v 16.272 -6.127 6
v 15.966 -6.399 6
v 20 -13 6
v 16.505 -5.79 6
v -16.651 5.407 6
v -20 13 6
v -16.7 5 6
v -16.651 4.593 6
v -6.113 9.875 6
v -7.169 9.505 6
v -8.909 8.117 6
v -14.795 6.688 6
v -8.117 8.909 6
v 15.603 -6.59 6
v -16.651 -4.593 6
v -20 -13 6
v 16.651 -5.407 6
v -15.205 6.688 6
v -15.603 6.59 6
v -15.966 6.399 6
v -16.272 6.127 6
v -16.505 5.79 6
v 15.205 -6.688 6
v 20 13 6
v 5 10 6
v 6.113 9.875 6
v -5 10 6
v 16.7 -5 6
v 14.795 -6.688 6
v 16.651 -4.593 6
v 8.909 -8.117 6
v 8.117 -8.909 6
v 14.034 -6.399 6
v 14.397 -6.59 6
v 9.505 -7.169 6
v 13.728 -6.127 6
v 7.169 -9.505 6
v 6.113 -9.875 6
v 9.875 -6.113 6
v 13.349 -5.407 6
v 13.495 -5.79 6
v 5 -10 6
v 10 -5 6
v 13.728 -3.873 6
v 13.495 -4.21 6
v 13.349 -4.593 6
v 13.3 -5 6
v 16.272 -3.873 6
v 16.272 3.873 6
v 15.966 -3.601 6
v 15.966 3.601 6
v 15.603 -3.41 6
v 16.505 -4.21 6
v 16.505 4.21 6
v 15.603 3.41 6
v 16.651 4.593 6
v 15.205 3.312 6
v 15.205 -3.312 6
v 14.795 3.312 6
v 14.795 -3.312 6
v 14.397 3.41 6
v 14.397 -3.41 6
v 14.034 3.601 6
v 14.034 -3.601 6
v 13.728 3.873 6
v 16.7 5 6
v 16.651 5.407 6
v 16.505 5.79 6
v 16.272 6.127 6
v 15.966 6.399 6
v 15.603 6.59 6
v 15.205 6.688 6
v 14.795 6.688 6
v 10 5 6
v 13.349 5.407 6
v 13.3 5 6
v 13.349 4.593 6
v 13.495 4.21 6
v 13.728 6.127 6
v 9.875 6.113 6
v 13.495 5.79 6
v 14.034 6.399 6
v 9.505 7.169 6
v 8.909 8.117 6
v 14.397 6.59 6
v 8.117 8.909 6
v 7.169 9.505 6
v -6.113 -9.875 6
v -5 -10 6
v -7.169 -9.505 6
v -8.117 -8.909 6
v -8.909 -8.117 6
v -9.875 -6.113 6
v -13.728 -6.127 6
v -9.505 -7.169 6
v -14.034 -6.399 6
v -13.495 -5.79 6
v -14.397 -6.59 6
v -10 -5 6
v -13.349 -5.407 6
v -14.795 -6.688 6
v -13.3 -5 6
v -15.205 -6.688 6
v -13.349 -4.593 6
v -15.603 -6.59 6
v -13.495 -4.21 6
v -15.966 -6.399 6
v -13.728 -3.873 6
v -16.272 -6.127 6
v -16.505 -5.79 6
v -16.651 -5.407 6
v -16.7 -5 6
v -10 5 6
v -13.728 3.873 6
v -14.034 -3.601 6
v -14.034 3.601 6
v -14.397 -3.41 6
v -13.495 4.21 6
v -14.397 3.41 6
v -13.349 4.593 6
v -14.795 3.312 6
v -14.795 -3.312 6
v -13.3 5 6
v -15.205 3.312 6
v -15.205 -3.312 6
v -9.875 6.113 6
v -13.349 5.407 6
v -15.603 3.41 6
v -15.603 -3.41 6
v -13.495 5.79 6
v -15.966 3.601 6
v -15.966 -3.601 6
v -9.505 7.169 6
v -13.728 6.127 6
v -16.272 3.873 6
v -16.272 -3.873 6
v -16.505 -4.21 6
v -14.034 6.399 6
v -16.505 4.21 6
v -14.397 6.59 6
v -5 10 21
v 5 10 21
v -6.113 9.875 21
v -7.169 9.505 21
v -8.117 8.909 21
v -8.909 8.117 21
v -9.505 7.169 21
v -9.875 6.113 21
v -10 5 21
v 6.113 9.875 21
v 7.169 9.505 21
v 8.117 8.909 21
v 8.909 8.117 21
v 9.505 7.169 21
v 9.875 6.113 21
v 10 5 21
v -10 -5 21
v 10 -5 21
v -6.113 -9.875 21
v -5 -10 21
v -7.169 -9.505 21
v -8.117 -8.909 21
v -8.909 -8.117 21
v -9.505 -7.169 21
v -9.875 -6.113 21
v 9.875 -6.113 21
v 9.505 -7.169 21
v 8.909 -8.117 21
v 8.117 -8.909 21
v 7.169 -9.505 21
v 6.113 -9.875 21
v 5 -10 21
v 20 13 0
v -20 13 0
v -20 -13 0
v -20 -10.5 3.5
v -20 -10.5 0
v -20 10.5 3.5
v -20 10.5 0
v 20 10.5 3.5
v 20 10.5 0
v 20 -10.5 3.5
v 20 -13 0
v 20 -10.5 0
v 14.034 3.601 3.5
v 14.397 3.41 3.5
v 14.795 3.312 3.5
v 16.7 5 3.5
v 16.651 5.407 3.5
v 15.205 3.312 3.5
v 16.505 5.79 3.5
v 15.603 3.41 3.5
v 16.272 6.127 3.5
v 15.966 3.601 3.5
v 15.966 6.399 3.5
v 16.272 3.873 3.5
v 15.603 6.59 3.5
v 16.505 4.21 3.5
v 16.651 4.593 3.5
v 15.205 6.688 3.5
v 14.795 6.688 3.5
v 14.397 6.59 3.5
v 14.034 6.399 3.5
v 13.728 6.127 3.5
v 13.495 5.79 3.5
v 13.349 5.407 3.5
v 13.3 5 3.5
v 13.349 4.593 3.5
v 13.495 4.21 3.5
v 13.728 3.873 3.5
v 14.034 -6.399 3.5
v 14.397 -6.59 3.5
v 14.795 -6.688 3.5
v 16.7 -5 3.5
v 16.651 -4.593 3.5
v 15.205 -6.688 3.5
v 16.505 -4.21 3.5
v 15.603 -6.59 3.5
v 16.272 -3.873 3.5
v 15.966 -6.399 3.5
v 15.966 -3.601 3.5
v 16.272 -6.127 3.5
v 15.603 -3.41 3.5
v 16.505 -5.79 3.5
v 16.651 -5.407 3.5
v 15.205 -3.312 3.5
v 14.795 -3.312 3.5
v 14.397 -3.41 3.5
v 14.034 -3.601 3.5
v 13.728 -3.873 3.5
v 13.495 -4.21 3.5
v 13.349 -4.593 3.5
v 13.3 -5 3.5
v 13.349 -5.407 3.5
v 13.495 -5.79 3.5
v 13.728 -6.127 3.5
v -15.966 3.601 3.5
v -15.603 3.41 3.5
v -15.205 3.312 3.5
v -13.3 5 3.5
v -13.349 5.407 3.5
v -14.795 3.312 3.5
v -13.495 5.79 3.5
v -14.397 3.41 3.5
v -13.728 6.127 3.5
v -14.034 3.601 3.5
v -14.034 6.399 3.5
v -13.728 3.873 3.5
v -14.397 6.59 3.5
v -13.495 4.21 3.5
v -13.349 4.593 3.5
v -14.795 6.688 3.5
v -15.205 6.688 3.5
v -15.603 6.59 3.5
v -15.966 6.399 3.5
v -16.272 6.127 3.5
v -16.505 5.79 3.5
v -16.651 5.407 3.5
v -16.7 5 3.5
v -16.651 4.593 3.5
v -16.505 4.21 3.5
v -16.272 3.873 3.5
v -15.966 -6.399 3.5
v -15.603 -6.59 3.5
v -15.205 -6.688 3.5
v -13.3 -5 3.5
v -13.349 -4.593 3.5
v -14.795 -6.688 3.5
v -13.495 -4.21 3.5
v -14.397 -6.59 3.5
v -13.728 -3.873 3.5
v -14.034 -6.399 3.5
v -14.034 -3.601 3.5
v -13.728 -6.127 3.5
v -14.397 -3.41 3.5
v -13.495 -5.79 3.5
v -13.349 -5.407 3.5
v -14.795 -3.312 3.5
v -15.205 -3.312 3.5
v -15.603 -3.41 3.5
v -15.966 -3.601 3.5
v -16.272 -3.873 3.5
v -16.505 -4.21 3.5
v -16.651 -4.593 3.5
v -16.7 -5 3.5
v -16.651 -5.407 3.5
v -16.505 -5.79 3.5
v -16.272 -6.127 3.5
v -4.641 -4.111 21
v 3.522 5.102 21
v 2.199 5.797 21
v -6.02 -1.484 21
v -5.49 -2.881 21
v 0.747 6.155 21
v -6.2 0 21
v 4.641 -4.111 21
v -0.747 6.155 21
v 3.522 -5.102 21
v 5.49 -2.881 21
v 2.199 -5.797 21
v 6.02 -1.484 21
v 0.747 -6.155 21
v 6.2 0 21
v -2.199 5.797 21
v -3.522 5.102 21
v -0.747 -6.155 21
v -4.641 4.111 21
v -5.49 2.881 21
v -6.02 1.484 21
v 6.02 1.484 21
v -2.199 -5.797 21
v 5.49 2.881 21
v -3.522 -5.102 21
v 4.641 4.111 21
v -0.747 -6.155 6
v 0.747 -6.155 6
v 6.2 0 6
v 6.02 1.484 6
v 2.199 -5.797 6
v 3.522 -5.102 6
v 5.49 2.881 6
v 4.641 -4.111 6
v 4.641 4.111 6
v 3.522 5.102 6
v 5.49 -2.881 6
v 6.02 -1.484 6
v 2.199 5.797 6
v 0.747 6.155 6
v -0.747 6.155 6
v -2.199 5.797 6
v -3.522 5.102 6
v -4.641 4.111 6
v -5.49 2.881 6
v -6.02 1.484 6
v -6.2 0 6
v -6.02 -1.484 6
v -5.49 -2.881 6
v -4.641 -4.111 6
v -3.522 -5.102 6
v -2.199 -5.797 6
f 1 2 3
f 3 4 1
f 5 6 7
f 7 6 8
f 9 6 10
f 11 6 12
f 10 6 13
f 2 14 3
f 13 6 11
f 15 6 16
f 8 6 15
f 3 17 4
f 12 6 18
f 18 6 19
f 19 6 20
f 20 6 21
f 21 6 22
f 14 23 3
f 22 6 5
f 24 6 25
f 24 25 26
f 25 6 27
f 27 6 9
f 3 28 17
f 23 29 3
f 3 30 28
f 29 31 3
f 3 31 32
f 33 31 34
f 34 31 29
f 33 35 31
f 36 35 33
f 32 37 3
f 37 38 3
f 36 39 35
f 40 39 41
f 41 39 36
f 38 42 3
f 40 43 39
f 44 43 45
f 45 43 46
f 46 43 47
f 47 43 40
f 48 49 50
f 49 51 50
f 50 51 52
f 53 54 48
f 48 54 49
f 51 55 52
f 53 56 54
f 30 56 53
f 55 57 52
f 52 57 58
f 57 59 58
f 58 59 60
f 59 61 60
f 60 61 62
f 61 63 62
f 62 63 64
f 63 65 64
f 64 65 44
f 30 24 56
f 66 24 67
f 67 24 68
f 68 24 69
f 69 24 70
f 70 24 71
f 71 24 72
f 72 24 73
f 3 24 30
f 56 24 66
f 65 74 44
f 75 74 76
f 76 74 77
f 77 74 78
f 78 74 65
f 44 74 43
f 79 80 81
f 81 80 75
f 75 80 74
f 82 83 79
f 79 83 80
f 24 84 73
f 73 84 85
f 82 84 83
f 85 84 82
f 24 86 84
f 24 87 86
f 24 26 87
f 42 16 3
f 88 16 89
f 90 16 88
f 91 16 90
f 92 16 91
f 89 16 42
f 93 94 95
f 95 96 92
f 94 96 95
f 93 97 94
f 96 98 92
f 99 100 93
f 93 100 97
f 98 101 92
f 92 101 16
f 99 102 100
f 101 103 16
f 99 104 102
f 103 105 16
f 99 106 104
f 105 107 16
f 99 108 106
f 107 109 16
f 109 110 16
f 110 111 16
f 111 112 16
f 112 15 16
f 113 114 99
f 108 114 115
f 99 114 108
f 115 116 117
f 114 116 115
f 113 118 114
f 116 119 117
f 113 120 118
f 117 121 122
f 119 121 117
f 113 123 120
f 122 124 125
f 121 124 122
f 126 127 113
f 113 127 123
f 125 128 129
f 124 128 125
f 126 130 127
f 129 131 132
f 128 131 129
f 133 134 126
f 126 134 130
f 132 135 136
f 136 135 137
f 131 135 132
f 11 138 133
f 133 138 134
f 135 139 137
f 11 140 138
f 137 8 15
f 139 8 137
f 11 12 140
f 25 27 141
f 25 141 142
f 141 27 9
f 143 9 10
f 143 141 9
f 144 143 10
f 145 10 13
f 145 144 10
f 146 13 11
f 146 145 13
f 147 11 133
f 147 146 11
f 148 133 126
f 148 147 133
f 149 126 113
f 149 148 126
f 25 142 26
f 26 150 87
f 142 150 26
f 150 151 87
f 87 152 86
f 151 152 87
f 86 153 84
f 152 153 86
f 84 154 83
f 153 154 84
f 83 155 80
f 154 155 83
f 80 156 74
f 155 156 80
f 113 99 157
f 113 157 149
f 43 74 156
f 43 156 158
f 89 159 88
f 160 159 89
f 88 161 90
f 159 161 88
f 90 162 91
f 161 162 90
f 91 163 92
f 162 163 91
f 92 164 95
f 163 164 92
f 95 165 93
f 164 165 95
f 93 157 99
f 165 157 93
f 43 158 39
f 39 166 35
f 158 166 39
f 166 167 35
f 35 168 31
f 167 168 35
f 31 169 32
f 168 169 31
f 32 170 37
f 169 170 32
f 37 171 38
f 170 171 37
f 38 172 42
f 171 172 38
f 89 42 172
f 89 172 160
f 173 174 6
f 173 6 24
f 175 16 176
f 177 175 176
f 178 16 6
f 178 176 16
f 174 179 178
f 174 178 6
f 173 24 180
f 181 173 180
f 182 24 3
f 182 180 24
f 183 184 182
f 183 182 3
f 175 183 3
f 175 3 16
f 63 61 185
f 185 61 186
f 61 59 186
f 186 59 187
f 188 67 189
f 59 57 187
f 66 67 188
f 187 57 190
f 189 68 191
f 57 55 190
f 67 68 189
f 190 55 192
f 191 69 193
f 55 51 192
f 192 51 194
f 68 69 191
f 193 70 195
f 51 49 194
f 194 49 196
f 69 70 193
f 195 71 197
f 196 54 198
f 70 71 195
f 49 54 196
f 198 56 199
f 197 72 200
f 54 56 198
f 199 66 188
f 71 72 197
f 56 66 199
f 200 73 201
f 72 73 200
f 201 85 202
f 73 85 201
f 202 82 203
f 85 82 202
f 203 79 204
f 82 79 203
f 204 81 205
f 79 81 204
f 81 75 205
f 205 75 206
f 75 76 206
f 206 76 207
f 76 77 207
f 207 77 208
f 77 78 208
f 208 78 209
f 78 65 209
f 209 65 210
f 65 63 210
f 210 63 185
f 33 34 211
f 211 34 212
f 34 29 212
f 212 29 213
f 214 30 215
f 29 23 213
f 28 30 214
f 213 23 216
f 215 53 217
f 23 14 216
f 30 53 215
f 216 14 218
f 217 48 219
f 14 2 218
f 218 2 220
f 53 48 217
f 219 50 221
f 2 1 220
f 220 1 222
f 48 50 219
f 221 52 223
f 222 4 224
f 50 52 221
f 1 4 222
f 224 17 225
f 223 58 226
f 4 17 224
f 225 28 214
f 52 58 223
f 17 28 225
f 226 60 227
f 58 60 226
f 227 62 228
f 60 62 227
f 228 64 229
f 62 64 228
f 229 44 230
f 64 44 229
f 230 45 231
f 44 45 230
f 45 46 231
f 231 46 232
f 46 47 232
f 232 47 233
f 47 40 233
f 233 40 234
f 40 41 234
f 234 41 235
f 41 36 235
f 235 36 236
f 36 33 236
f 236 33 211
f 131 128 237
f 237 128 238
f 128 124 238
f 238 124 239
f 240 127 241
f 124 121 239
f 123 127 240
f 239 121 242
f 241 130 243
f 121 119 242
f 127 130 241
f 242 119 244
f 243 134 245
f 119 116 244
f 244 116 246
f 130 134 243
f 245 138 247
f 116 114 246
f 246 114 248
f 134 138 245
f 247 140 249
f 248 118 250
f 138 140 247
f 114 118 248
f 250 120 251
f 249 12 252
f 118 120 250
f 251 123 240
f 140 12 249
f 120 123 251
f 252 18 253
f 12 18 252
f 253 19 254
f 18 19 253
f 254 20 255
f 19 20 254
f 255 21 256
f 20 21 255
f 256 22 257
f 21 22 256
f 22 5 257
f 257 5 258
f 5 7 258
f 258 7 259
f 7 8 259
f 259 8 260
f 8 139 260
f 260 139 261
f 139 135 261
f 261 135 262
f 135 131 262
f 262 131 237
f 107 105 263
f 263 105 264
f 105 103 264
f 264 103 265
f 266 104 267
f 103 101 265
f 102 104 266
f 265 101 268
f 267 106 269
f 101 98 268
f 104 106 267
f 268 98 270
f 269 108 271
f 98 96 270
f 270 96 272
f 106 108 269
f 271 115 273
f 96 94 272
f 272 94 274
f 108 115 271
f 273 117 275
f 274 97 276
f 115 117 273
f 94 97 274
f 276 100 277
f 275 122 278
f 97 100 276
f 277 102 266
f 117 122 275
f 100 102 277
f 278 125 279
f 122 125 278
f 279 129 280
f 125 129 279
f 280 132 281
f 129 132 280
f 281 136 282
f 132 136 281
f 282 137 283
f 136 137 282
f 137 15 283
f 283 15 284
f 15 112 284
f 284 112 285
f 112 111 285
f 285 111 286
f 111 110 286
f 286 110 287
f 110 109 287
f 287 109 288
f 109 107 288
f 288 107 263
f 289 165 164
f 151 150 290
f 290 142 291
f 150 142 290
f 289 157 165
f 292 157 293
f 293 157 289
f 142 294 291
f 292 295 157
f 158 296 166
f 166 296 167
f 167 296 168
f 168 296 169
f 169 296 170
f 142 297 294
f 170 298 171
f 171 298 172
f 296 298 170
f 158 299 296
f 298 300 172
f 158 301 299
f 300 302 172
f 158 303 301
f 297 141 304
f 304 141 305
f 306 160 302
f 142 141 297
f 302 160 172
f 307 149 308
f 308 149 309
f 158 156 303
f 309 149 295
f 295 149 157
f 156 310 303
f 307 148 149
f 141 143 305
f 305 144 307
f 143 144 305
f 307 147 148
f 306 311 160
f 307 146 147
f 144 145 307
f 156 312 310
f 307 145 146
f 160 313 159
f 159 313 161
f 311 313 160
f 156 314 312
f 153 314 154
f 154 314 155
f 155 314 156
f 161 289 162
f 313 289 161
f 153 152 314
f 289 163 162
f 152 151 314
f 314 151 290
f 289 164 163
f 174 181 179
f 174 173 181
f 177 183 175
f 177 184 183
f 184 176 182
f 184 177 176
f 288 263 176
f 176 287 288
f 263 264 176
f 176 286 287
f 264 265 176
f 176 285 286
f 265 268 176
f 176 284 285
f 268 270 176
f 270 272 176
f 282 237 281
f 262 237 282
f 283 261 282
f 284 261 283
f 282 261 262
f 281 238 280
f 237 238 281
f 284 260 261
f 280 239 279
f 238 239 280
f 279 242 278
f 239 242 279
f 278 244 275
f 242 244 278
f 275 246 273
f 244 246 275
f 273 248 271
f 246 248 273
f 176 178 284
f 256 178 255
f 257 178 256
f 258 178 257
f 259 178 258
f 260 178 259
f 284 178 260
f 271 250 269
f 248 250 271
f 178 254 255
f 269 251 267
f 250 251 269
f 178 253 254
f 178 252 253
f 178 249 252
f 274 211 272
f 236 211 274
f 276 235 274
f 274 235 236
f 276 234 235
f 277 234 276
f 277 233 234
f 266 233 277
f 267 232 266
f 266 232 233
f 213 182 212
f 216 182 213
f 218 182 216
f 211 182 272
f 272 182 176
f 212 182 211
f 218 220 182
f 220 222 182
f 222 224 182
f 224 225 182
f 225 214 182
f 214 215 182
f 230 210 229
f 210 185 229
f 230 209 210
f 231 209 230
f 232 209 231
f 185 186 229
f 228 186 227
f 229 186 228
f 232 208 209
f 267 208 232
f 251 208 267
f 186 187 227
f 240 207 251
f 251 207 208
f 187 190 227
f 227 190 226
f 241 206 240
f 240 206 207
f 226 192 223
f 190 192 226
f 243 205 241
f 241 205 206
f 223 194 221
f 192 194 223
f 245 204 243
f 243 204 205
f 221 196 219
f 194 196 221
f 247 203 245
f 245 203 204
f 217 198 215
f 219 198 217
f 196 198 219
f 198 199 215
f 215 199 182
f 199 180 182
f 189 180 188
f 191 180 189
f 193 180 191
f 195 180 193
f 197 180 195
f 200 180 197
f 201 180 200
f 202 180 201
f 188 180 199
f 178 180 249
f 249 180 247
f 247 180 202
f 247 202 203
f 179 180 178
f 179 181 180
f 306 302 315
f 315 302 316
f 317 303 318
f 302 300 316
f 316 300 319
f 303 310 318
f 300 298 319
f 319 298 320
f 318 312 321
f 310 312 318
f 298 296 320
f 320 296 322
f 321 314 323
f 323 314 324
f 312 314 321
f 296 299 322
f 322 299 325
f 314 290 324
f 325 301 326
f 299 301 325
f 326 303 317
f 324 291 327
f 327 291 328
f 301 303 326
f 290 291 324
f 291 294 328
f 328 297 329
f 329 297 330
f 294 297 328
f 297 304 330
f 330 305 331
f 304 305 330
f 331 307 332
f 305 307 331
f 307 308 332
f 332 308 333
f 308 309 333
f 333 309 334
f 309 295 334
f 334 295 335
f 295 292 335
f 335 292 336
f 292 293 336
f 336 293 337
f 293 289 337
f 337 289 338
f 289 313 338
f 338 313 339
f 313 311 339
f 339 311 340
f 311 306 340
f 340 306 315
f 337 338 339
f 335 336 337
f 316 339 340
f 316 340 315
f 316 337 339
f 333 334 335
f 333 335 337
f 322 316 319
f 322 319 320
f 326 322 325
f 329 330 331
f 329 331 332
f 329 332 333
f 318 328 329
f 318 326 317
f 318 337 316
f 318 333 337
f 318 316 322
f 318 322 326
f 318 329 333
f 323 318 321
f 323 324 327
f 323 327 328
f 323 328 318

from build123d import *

# Parameters (mm, degrees)
SKETCH_W        = 40
SKETCH_H        = 26
PAD_DEPTH       = 6
SKETCH001_W     = 46
SKETCH001_H     = 21
POCKET_DEPTH    = 3.5
SKETCH002_R     = 1.7
POCKET001_DEPTH = 2.5
SKETCH003_W     = 20
SKETCH003_H     = 20
PAD001_DEPTH    = 15
SKETCH004_R     = 6.2
POCKET002_DEPTH = 15
FILLET_R        = 5


with BuildPart() as part:
    # Sketch → Pad (new body)
    with BuildSketch(Plane.XY):
        Rectangle(SKETCH_W, SKETCH_H)
    extrude(amount=PAD_DEPTH)

    # Sketch001 (on Face5 of Pad) → Pocket (cut)
    with BuildSketch(Plane(origin=(0, 0, 0), x_dir=(1, 0, 0), z_dir=(0, 0, -1))):
        Rectangle(SKETCH001_W, SKETCH001_H)
    extrude(amount=-POCKET_DEPTH, mode=Mode.SUBTRACT)

    # Sketch002 (on Face5 of Pocket) → Pocket001 (cut)
    with BuildSketch(Plane.XY.offset(6)):
        with Locations((-15, 5)):
            Circle(SKETCH002_R)
        with Locations((15, 5)):
            Circle(SKETCH002_R)
        with Locations((15, -5)):
            Circle(SKETCH002_R)
        with Locations((-15, -5)):
            Circle(SKETCH002_R)
    extrude(amount=-POCKET001_DEPTH, mode=Mode.SUBTRACT)

    # Sketch003 (on Face5 of Pocket001) → Pad001 (join)
    with BuildSketch(Plane.XY.offset(6)):
        Rectangle(SKETCH003_W, SKETCH003_H)
    extrude(amount=PAD001_DEPTH)

    # Sketch004 (on Face19 of Pad001) → Pocket002 (cut)
    with BuildSketch(Plane.XY.offset(21)):
        Circle(SKETCH004_R)
    extrude(amount=-POCKET002_DEPTH, mode=Mode.SUBTRACT)

    # Fillet
    fillet_edges = [part.edges().sort_by_distance(p)[0] for p in [
        (-10, -10, 13.5),
        (-10, 10, 13.5),
        (10, -10, 13.5),
        (10, 10, 13.5),
    ]]
    fillet(fillet_edges, radius=FILLET_R)


solid = part.part
